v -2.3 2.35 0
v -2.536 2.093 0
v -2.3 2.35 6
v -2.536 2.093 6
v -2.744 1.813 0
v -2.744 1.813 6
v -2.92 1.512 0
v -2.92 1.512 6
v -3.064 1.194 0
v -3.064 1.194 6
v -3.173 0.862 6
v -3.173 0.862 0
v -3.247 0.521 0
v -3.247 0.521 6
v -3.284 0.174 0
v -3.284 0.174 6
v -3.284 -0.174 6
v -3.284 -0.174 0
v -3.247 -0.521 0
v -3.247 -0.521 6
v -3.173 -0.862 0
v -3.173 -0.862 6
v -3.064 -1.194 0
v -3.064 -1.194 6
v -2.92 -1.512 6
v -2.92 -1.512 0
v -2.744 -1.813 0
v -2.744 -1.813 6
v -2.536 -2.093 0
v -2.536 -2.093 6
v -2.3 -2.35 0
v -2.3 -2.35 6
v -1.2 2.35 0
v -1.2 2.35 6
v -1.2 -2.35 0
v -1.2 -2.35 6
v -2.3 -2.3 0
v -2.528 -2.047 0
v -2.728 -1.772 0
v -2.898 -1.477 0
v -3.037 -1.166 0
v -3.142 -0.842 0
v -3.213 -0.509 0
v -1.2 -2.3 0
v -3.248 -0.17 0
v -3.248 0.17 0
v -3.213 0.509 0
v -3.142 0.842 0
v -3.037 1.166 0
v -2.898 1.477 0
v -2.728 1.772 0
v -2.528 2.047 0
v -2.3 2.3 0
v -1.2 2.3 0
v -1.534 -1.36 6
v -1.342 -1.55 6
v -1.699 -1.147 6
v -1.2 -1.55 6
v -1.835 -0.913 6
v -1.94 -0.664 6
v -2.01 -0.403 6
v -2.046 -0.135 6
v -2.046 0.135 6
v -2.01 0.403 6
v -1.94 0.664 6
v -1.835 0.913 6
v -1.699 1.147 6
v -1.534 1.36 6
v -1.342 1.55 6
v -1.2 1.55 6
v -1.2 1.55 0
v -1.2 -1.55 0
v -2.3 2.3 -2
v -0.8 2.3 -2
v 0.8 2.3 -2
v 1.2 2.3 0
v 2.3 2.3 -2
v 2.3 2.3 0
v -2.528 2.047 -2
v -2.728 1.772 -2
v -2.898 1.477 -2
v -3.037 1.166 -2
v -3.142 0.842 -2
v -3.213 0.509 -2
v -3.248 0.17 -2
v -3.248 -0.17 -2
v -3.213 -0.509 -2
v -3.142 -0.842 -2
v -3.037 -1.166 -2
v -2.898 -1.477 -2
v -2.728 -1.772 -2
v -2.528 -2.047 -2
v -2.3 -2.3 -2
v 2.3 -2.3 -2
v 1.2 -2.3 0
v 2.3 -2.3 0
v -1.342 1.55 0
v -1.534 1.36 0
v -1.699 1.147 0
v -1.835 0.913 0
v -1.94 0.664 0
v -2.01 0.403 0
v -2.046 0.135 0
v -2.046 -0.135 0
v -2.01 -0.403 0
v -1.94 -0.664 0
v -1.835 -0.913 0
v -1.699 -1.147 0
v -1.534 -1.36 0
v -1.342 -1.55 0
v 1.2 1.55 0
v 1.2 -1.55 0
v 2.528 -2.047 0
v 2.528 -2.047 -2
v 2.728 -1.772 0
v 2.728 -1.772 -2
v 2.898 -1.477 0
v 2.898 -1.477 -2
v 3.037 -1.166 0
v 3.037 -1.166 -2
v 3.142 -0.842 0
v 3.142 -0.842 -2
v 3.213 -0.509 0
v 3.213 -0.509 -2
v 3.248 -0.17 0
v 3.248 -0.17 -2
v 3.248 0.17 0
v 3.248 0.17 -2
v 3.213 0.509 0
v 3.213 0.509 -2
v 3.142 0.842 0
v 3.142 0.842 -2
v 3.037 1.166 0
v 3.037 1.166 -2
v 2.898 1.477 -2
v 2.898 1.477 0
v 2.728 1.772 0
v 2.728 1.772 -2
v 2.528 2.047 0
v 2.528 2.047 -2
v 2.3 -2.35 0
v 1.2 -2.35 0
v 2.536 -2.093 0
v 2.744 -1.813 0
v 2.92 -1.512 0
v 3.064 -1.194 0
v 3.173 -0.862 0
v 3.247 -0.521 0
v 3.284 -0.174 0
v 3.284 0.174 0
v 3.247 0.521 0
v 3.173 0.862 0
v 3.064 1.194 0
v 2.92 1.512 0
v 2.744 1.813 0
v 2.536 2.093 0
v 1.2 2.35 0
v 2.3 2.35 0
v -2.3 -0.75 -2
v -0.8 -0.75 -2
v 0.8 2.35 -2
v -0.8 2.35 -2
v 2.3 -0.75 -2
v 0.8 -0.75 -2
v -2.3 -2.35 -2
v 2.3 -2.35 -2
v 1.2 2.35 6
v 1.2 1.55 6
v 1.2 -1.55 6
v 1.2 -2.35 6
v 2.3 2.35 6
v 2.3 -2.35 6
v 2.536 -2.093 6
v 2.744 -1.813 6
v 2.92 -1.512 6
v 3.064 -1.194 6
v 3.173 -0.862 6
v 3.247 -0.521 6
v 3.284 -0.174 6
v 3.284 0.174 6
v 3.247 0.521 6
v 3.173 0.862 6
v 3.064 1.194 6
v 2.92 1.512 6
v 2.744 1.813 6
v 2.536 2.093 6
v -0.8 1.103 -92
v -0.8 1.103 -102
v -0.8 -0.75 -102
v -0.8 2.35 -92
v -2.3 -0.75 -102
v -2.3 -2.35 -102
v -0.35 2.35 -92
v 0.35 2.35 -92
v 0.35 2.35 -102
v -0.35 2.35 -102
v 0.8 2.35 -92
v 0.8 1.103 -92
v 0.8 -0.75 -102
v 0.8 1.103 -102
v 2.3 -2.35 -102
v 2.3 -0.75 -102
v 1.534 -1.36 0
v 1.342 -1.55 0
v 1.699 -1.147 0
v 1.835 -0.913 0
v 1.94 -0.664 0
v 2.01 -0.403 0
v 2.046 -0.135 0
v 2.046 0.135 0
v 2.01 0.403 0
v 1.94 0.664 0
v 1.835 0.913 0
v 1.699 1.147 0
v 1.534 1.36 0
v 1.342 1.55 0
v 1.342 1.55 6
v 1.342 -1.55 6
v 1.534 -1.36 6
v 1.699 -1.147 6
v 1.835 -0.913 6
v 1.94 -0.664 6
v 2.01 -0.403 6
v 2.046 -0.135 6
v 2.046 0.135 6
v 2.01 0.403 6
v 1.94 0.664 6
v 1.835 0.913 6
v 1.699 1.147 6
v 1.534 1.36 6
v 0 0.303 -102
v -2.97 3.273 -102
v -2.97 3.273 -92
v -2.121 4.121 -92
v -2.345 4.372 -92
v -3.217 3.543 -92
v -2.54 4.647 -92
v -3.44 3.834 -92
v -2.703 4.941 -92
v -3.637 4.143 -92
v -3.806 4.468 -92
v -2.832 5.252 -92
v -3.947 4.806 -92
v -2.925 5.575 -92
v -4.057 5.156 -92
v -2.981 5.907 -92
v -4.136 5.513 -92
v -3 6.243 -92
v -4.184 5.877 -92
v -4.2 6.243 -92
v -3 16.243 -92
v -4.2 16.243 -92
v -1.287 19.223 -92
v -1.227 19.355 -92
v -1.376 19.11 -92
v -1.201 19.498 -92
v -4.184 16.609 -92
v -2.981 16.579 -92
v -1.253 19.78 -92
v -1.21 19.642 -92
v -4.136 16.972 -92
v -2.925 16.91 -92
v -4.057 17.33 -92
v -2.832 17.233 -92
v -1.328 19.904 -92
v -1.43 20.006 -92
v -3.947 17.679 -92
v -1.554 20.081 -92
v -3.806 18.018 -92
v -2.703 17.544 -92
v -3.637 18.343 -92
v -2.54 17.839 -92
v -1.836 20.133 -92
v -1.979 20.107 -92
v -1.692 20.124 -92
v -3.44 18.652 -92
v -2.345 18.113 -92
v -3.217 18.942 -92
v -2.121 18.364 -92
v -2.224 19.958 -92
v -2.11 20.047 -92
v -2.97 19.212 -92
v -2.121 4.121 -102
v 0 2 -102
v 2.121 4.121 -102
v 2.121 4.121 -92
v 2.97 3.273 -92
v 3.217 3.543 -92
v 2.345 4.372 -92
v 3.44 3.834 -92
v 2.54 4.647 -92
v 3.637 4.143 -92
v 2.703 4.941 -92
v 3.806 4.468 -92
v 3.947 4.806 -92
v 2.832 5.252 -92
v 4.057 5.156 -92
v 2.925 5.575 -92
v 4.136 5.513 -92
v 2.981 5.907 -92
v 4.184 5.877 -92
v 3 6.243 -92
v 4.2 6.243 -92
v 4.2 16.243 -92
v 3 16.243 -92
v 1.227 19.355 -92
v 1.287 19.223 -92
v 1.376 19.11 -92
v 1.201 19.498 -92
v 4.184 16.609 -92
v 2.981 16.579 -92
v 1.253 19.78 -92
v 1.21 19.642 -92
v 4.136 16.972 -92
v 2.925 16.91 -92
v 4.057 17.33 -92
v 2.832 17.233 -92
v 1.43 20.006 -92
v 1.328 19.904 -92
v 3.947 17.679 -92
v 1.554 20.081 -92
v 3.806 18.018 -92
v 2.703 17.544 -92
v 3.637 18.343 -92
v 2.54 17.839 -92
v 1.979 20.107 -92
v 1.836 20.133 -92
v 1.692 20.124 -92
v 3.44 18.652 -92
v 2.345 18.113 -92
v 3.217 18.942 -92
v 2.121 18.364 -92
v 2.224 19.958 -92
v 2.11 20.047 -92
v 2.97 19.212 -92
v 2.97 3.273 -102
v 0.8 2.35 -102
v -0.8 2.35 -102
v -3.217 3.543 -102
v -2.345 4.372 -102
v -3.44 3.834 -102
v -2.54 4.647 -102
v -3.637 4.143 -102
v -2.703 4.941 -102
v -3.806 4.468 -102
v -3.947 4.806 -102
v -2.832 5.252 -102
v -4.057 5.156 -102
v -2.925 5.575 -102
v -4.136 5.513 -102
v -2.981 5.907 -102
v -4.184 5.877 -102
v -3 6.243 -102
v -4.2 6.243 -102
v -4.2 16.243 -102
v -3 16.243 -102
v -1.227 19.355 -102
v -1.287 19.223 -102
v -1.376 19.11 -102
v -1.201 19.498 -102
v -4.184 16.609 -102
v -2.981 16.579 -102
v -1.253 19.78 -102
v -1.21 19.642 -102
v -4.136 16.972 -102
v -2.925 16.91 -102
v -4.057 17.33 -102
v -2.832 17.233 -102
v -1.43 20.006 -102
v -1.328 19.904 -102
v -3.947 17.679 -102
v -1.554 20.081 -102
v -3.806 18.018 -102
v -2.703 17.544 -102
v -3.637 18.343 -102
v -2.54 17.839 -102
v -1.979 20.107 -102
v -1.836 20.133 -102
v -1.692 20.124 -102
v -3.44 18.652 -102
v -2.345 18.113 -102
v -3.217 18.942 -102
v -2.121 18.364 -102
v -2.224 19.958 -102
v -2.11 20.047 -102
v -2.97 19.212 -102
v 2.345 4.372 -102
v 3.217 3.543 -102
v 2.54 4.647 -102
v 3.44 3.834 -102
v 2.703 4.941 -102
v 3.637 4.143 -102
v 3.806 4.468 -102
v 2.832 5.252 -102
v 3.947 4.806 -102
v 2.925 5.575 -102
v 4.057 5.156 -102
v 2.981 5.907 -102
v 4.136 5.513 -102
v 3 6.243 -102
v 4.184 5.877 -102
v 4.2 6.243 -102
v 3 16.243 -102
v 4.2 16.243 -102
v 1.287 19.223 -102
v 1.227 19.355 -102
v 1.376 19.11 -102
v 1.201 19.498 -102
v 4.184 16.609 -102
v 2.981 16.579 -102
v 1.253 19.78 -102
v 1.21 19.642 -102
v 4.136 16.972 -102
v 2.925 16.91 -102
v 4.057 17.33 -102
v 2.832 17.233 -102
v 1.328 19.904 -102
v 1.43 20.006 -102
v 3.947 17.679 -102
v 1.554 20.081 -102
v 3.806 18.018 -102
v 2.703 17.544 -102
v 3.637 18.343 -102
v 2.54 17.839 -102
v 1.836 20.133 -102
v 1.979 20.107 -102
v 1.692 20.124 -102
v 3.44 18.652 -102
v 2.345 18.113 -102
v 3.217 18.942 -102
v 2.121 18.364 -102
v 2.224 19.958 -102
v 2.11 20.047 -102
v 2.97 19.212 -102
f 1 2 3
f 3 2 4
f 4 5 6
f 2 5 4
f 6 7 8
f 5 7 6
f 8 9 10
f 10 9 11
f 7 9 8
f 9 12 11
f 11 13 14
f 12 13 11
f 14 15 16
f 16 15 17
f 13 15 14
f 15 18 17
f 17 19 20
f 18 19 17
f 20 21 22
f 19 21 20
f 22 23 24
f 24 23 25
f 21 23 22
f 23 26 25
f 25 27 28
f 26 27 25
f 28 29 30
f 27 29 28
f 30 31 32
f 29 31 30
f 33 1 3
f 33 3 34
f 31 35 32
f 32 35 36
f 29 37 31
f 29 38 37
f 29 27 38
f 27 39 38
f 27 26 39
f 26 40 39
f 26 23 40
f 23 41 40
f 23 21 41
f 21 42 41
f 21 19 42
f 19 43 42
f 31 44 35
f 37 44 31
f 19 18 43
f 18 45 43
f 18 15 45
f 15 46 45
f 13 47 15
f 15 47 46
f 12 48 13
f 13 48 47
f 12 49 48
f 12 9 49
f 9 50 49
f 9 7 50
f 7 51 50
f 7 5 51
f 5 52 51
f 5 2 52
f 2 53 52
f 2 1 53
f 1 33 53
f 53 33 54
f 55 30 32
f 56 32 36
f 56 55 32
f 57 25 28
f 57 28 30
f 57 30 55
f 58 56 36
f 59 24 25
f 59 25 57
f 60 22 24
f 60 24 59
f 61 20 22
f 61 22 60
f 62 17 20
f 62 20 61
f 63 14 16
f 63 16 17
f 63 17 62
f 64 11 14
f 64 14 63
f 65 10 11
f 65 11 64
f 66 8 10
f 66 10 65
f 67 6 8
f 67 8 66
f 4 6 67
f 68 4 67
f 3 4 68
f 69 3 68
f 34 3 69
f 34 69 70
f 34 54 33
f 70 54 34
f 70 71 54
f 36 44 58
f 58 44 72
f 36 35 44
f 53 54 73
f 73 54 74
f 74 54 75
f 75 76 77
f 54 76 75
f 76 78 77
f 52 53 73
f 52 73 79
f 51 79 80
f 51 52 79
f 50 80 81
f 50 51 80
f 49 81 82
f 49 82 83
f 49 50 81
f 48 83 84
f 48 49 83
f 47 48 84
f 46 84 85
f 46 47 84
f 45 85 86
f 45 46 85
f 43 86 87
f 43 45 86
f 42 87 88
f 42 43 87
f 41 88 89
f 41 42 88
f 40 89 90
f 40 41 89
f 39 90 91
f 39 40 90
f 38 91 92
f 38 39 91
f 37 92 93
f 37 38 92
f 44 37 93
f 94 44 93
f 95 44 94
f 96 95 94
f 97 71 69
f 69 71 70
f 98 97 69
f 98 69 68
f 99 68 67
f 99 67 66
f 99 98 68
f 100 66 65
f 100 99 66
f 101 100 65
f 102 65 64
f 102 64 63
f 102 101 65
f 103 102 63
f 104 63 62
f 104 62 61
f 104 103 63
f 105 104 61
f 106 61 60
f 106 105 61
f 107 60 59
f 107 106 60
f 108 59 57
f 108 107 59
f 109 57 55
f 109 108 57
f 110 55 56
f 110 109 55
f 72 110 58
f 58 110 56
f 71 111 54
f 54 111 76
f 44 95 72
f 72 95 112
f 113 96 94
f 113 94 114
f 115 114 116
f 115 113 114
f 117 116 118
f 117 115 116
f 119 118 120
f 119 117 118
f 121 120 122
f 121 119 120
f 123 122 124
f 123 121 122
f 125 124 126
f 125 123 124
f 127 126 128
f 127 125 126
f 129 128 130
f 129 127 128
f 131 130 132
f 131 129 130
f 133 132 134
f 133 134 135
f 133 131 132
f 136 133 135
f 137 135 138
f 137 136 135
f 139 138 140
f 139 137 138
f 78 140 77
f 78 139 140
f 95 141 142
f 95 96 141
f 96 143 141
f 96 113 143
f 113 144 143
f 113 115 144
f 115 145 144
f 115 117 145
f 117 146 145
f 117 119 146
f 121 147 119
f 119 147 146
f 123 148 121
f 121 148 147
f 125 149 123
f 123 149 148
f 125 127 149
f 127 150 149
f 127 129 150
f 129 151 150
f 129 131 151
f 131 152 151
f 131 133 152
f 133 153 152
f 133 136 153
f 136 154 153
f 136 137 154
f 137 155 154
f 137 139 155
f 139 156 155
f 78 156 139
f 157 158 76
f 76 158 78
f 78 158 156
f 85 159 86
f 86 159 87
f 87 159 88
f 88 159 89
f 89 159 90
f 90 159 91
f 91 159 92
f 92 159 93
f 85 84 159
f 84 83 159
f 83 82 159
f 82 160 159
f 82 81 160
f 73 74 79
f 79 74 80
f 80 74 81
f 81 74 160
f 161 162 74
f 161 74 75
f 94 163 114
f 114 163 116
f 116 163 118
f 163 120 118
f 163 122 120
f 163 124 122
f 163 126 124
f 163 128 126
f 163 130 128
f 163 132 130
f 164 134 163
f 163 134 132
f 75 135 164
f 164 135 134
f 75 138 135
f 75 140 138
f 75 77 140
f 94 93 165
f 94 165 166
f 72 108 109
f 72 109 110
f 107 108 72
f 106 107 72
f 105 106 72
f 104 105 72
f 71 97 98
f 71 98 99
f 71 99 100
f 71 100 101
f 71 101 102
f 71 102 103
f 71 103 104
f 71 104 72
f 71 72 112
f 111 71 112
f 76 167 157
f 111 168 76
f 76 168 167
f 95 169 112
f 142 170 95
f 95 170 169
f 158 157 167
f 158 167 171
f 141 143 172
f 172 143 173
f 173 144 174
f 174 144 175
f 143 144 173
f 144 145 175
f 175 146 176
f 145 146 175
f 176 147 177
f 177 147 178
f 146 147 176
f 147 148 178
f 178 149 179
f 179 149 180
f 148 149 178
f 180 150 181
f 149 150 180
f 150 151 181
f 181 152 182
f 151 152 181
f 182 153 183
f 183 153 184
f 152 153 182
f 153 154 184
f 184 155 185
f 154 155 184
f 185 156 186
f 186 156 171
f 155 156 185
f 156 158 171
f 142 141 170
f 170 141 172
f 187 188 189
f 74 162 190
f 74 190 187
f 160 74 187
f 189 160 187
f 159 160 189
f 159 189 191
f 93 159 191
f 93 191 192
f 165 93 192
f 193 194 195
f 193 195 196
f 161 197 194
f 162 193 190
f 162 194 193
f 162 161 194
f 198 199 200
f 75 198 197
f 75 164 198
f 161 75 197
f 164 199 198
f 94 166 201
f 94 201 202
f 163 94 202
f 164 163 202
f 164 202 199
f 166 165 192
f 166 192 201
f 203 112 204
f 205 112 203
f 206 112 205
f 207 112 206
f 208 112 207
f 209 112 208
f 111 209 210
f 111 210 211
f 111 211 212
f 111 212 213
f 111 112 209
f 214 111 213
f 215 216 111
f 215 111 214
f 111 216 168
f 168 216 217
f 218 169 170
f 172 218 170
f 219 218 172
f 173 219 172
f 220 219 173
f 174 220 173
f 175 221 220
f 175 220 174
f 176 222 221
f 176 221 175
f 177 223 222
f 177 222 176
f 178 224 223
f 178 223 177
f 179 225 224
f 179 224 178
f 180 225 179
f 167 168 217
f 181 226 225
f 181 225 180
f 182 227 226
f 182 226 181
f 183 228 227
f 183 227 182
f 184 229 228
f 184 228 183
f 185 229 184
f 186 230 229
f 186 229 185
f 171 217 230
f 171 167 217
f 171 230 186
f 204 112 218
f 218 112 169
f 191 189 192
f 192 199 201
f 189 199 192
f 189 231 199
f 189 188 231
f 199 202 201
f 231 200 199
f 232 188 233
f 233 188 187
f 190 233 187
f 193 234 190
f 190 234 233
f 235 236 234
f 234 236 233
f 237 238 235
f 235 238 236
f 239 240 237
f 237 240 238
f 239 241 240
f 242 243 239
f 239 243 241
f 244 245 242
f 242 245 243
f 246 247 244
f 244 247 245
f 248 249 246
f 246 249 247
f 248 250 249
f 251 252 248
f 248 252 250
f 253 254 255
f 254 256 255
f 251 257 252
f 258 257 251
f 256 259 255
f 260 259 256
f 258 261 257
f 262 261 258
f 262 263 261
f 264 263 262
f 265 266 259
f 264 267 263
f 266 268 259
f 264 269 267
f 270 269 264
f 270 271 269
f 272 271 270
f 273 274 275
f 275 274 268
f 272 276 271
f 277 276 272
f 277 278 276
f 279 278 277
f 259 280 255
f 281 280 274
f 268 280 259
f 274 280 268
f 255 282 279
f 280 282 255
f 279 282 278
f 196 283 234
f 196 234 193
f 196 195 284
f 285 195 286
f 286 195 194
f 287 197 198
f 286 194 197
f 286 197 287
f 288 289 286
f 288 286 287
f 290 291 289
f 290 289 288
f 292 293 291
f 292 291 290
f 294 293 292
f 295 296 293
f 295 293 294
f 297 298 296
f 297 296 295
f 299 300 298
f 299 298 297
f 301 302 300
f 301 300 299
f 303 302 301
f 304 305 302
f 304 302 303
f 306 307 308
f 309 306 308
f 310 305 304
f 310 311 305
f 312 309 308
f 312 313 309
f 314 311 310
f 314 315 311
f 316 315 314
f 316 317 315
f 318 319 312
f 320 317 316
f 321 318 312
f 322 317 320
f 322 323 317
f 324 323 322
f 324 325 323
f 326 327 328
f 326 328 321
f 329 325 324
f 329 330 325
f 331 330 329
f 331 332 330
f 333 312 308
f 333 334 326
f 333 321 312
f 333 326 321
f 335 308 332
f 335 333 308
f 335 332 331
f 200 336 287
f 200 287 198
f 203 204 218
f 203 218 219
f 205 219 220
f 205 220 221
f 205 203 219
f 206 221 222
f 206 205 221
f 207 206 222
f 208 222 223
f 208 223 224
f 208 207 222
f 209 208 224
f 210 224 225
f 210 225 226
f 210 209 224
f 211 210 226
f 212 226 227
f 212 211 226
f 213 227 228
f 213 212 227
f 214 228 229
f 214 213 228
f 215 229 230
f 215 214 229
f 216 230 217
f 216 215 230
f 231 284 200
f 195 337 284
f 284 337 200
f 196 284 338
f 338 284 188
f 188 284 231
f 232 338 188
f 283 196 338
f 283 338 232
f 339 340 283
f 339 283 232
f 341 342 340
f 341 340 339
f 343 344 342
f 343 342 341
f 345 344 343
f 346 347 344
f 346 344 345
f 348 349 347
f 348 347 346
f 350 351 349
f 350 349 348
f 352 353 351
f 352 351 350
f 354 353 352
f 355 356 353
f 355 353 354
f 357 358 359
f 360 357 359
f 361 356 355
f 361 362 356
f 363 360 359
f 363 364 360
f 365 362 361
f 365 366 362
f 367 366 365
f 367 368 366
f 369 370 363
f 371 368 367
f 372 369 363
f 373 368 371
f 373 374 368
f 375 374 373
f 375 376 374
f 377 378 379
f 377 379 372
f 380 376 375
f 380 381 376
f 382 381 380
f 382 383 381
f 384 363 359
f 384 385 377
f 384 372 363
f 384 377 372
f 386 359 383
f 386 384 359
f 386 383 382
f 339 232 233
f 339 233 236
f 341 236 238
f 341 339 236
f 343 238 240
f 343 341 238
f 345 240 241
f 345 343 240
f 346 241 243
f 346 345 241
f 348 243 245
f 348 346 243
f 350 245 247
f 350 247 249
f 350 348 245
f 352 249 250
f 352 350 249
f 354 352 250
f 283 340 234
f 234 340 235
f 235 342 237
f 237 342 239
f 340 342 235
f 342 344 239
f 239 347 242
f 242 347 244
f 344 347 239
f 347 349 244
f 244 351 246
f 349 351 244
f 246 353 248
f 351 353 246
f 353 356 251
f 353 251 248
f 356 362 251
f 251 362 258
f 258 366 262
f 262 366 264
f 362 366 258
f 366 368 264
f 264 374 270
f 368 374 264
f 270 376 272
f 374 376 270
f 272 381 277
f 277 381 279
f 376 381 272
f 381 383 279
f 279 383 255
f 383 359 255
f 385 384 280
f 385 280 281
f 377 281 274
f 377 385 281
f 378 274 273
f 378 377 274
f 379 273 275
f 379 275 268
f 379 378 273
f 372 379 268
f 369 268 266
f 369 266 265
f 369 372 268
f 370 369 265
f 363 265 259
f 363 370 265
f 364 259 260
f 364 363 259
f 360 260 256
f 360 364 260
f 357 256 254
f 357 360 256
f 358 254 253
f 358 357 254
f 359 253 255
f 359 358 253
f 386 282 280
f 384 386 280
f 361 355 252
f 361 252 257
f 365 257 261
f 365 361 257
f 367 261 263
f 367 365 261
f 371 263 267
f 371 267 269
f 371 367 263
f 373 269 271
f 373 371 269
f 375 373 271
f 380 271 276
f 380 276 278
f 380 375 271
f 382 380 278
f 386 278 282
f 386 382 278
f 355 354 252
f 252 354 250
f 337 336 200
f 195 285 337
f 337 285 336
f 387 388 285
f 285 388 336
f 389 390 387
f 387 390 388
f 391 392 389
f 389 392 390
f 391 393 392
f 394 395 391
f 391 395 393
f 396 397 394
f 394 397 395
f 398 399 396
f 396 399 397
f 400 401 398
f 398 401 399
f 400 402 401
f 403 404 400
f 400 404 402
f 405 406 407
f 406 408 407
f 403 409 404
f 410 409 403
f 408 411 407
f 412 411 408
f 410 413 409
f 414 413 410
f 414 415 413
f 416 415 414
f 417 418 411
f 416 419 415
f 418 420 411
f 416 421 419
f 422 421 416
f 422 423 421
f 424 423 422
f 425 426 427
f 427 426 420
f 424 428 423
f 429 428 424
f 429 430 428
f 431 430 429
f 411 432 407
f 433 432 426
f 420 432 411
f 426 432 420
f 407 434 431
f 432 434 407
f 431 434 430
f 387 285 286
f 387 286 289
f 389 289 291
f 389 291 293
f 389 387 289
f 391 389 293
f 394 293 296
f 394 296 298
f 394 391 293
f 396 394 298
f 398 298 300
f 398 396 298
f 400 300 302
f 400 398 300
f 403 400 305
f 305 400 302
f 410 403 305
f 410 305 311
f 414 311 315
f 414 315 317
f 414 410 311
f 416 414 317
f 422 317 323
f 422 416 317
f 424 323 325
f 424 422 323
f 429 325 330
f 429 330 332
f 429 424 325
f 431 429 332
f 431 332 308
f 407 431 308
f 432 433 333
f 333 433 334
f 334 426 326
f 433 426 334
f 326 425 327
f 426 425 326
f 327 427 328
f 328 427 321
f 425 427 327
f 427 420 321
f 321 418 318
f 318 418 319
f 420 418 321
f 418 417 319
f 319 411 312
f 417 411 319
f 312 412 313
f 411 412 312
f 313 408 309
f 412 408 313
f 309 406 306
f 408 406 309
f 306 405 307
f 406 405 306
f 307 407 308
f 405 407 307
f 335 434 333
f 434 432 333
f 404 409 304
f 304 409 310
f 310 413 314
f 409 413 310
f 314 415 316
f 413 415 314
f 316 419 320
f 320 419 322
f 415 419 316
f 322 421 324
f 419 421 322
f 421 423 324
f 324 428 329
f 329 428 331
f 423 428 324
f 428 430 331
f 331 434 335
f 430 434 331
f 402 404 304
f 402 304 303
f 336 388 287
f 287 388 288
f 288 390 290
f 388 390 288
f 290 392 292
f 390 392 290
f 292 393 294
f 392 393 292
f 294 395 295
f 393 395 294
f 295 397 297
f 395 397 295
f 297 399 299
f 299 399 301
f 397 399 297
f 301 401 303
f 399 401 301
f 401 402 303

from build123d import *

# Parameters (mm, degrees)
PAD_DEPTH         = 6
PAD001_DEPTH      = 2
PAD002_DEPTH      = 100
SKETCH003_W       = 2.4
SKETCH003_H       = 10
POCKET_DEPTH      = 2.351
POCKET_DEPTH_BACK = -2.351
PAD003_DEPTH      = 10


with BuildPart() as part:
    # Sketch → Pad (new body)
    with BuildSketch(Plane.XY):
        with BuildLine():
            ThreePointArc((-2.3, 2.35), (-3.288237, 0), (-2.3, -2.35))
            Line((-2.3, -2.35), (2.3, -2.35))
            ThreePointArc((2.3, -2.35), (3.288237, 0), (2.3, 2.35))
            Line((-2.3, 2.35), (2.3, 2.35))
        make_face()
        with BuildLine():
            ThreePointArc((1.341641, -1.55), (2.05, 0), (1.341641, 1.55))
            Line((-1.341641, 1.55), (1.341641, 1.55))
            ThreePointArc((-1.341641, 1.55), (-2.05, 0), (-1.341641, -1.55))
            Line((1.341641, -1.55), (-1.341641, -1.55))
        make_face(mode=Mode.SUBTRACT)
    extrude(amount=PAD_DEPTH)

    # Sketch001 → Pad001 (join)
    with BuildSketch(Plane.XY):
        with BuildLine():
            ThreePointArc((-2.3, 2.3), (-3.252691, 0), (-2.3, -2.3))
            Line((-2.3, -2.3), (2.3, -2.3))
            ThreePointArc((2.3, -2.3), (3.252691, 0), (2.3, 2.3))
            Line((-2.3, 2.3), (2.3, 2.3))
        make_face()
    extrude(amount=-PAD001_DEPTH)

    # Sketch002 → Pad002 (join)
    with BuildSketch(Plane.XY.offset(-2)):
        Polygon((-0.8, 2.35), (-0.8, -0.75), (-2.3, -0.75), (-2.3, -2.35), (2.3, -2.35), (2.3, -0.75), (0.8, -0.75), (0.8, 2.35), align=None)
    extrude(amount=-PAD002_DEPTH)

    # Sketch003 → Pocket (cut, two sides)
    with BuildSketch(Plane.XZ) as pocket_sk:
        with Locations((0, 5)):
            Rectangle(SKETCH003_W, SKETCH003_H)
    extrude(amount=-POCKET_DEPTH, mode=Mode.SUBTRACT)
    extrude(pocket_sk.sketch, amount=-POCKET_DEPTH_BACK, mode=Mode.SUBTRACT)

    # Sketch004 → Pad003 (join)
    with BuildSketch(Plane.XY.offset(-102)):
        with BuildLine():
            ThreePointArc((2.12132, 4.12132), (2.771639, 5.09459), (3, 6.242641))
            Line((3, 16.242641), (3, 6.242641))
            ThreePointArc((3, 16.242641), (2.771639, 17.390691), (2.12132, 18.363961))
            Line((2.12132, 18.363961), (1.375736, 19.109545))
            ThreePointArc((2.224264, 19.958074), (1.375736, 19.958074), (1.375736, 19.109545))
            Line((2.969848, 19.212489), (2.224264, 19.958074))
            ThreePointArc((4.2, 16.242641), (3.880294, 17.849911), (2.969848, 19.212489))
            Line((4.2, 16.242641), (4.2, 6.242641))
            ThreePointArc((2.969848, 3.272792), (3.880294, 4.63537), (4.2, 6.242641))
            Line((2.969848, 3.272792), (0, 0.302944))
            Line((0, 2), (0, 0.302944))
            Line((2.12132, 4.12132), (0, 2))
        make_face()
    pad003 = extrude(amount=PAD003_DEPTH)

    # Mirrored: Pad003 across Sketch004 V_Axis
    add(pad003.mirror(Plane(origin=(0, 0, -102), x_dir=(0, 0, 1), z_dir=(1, 0, 0))))


solid = part.part
